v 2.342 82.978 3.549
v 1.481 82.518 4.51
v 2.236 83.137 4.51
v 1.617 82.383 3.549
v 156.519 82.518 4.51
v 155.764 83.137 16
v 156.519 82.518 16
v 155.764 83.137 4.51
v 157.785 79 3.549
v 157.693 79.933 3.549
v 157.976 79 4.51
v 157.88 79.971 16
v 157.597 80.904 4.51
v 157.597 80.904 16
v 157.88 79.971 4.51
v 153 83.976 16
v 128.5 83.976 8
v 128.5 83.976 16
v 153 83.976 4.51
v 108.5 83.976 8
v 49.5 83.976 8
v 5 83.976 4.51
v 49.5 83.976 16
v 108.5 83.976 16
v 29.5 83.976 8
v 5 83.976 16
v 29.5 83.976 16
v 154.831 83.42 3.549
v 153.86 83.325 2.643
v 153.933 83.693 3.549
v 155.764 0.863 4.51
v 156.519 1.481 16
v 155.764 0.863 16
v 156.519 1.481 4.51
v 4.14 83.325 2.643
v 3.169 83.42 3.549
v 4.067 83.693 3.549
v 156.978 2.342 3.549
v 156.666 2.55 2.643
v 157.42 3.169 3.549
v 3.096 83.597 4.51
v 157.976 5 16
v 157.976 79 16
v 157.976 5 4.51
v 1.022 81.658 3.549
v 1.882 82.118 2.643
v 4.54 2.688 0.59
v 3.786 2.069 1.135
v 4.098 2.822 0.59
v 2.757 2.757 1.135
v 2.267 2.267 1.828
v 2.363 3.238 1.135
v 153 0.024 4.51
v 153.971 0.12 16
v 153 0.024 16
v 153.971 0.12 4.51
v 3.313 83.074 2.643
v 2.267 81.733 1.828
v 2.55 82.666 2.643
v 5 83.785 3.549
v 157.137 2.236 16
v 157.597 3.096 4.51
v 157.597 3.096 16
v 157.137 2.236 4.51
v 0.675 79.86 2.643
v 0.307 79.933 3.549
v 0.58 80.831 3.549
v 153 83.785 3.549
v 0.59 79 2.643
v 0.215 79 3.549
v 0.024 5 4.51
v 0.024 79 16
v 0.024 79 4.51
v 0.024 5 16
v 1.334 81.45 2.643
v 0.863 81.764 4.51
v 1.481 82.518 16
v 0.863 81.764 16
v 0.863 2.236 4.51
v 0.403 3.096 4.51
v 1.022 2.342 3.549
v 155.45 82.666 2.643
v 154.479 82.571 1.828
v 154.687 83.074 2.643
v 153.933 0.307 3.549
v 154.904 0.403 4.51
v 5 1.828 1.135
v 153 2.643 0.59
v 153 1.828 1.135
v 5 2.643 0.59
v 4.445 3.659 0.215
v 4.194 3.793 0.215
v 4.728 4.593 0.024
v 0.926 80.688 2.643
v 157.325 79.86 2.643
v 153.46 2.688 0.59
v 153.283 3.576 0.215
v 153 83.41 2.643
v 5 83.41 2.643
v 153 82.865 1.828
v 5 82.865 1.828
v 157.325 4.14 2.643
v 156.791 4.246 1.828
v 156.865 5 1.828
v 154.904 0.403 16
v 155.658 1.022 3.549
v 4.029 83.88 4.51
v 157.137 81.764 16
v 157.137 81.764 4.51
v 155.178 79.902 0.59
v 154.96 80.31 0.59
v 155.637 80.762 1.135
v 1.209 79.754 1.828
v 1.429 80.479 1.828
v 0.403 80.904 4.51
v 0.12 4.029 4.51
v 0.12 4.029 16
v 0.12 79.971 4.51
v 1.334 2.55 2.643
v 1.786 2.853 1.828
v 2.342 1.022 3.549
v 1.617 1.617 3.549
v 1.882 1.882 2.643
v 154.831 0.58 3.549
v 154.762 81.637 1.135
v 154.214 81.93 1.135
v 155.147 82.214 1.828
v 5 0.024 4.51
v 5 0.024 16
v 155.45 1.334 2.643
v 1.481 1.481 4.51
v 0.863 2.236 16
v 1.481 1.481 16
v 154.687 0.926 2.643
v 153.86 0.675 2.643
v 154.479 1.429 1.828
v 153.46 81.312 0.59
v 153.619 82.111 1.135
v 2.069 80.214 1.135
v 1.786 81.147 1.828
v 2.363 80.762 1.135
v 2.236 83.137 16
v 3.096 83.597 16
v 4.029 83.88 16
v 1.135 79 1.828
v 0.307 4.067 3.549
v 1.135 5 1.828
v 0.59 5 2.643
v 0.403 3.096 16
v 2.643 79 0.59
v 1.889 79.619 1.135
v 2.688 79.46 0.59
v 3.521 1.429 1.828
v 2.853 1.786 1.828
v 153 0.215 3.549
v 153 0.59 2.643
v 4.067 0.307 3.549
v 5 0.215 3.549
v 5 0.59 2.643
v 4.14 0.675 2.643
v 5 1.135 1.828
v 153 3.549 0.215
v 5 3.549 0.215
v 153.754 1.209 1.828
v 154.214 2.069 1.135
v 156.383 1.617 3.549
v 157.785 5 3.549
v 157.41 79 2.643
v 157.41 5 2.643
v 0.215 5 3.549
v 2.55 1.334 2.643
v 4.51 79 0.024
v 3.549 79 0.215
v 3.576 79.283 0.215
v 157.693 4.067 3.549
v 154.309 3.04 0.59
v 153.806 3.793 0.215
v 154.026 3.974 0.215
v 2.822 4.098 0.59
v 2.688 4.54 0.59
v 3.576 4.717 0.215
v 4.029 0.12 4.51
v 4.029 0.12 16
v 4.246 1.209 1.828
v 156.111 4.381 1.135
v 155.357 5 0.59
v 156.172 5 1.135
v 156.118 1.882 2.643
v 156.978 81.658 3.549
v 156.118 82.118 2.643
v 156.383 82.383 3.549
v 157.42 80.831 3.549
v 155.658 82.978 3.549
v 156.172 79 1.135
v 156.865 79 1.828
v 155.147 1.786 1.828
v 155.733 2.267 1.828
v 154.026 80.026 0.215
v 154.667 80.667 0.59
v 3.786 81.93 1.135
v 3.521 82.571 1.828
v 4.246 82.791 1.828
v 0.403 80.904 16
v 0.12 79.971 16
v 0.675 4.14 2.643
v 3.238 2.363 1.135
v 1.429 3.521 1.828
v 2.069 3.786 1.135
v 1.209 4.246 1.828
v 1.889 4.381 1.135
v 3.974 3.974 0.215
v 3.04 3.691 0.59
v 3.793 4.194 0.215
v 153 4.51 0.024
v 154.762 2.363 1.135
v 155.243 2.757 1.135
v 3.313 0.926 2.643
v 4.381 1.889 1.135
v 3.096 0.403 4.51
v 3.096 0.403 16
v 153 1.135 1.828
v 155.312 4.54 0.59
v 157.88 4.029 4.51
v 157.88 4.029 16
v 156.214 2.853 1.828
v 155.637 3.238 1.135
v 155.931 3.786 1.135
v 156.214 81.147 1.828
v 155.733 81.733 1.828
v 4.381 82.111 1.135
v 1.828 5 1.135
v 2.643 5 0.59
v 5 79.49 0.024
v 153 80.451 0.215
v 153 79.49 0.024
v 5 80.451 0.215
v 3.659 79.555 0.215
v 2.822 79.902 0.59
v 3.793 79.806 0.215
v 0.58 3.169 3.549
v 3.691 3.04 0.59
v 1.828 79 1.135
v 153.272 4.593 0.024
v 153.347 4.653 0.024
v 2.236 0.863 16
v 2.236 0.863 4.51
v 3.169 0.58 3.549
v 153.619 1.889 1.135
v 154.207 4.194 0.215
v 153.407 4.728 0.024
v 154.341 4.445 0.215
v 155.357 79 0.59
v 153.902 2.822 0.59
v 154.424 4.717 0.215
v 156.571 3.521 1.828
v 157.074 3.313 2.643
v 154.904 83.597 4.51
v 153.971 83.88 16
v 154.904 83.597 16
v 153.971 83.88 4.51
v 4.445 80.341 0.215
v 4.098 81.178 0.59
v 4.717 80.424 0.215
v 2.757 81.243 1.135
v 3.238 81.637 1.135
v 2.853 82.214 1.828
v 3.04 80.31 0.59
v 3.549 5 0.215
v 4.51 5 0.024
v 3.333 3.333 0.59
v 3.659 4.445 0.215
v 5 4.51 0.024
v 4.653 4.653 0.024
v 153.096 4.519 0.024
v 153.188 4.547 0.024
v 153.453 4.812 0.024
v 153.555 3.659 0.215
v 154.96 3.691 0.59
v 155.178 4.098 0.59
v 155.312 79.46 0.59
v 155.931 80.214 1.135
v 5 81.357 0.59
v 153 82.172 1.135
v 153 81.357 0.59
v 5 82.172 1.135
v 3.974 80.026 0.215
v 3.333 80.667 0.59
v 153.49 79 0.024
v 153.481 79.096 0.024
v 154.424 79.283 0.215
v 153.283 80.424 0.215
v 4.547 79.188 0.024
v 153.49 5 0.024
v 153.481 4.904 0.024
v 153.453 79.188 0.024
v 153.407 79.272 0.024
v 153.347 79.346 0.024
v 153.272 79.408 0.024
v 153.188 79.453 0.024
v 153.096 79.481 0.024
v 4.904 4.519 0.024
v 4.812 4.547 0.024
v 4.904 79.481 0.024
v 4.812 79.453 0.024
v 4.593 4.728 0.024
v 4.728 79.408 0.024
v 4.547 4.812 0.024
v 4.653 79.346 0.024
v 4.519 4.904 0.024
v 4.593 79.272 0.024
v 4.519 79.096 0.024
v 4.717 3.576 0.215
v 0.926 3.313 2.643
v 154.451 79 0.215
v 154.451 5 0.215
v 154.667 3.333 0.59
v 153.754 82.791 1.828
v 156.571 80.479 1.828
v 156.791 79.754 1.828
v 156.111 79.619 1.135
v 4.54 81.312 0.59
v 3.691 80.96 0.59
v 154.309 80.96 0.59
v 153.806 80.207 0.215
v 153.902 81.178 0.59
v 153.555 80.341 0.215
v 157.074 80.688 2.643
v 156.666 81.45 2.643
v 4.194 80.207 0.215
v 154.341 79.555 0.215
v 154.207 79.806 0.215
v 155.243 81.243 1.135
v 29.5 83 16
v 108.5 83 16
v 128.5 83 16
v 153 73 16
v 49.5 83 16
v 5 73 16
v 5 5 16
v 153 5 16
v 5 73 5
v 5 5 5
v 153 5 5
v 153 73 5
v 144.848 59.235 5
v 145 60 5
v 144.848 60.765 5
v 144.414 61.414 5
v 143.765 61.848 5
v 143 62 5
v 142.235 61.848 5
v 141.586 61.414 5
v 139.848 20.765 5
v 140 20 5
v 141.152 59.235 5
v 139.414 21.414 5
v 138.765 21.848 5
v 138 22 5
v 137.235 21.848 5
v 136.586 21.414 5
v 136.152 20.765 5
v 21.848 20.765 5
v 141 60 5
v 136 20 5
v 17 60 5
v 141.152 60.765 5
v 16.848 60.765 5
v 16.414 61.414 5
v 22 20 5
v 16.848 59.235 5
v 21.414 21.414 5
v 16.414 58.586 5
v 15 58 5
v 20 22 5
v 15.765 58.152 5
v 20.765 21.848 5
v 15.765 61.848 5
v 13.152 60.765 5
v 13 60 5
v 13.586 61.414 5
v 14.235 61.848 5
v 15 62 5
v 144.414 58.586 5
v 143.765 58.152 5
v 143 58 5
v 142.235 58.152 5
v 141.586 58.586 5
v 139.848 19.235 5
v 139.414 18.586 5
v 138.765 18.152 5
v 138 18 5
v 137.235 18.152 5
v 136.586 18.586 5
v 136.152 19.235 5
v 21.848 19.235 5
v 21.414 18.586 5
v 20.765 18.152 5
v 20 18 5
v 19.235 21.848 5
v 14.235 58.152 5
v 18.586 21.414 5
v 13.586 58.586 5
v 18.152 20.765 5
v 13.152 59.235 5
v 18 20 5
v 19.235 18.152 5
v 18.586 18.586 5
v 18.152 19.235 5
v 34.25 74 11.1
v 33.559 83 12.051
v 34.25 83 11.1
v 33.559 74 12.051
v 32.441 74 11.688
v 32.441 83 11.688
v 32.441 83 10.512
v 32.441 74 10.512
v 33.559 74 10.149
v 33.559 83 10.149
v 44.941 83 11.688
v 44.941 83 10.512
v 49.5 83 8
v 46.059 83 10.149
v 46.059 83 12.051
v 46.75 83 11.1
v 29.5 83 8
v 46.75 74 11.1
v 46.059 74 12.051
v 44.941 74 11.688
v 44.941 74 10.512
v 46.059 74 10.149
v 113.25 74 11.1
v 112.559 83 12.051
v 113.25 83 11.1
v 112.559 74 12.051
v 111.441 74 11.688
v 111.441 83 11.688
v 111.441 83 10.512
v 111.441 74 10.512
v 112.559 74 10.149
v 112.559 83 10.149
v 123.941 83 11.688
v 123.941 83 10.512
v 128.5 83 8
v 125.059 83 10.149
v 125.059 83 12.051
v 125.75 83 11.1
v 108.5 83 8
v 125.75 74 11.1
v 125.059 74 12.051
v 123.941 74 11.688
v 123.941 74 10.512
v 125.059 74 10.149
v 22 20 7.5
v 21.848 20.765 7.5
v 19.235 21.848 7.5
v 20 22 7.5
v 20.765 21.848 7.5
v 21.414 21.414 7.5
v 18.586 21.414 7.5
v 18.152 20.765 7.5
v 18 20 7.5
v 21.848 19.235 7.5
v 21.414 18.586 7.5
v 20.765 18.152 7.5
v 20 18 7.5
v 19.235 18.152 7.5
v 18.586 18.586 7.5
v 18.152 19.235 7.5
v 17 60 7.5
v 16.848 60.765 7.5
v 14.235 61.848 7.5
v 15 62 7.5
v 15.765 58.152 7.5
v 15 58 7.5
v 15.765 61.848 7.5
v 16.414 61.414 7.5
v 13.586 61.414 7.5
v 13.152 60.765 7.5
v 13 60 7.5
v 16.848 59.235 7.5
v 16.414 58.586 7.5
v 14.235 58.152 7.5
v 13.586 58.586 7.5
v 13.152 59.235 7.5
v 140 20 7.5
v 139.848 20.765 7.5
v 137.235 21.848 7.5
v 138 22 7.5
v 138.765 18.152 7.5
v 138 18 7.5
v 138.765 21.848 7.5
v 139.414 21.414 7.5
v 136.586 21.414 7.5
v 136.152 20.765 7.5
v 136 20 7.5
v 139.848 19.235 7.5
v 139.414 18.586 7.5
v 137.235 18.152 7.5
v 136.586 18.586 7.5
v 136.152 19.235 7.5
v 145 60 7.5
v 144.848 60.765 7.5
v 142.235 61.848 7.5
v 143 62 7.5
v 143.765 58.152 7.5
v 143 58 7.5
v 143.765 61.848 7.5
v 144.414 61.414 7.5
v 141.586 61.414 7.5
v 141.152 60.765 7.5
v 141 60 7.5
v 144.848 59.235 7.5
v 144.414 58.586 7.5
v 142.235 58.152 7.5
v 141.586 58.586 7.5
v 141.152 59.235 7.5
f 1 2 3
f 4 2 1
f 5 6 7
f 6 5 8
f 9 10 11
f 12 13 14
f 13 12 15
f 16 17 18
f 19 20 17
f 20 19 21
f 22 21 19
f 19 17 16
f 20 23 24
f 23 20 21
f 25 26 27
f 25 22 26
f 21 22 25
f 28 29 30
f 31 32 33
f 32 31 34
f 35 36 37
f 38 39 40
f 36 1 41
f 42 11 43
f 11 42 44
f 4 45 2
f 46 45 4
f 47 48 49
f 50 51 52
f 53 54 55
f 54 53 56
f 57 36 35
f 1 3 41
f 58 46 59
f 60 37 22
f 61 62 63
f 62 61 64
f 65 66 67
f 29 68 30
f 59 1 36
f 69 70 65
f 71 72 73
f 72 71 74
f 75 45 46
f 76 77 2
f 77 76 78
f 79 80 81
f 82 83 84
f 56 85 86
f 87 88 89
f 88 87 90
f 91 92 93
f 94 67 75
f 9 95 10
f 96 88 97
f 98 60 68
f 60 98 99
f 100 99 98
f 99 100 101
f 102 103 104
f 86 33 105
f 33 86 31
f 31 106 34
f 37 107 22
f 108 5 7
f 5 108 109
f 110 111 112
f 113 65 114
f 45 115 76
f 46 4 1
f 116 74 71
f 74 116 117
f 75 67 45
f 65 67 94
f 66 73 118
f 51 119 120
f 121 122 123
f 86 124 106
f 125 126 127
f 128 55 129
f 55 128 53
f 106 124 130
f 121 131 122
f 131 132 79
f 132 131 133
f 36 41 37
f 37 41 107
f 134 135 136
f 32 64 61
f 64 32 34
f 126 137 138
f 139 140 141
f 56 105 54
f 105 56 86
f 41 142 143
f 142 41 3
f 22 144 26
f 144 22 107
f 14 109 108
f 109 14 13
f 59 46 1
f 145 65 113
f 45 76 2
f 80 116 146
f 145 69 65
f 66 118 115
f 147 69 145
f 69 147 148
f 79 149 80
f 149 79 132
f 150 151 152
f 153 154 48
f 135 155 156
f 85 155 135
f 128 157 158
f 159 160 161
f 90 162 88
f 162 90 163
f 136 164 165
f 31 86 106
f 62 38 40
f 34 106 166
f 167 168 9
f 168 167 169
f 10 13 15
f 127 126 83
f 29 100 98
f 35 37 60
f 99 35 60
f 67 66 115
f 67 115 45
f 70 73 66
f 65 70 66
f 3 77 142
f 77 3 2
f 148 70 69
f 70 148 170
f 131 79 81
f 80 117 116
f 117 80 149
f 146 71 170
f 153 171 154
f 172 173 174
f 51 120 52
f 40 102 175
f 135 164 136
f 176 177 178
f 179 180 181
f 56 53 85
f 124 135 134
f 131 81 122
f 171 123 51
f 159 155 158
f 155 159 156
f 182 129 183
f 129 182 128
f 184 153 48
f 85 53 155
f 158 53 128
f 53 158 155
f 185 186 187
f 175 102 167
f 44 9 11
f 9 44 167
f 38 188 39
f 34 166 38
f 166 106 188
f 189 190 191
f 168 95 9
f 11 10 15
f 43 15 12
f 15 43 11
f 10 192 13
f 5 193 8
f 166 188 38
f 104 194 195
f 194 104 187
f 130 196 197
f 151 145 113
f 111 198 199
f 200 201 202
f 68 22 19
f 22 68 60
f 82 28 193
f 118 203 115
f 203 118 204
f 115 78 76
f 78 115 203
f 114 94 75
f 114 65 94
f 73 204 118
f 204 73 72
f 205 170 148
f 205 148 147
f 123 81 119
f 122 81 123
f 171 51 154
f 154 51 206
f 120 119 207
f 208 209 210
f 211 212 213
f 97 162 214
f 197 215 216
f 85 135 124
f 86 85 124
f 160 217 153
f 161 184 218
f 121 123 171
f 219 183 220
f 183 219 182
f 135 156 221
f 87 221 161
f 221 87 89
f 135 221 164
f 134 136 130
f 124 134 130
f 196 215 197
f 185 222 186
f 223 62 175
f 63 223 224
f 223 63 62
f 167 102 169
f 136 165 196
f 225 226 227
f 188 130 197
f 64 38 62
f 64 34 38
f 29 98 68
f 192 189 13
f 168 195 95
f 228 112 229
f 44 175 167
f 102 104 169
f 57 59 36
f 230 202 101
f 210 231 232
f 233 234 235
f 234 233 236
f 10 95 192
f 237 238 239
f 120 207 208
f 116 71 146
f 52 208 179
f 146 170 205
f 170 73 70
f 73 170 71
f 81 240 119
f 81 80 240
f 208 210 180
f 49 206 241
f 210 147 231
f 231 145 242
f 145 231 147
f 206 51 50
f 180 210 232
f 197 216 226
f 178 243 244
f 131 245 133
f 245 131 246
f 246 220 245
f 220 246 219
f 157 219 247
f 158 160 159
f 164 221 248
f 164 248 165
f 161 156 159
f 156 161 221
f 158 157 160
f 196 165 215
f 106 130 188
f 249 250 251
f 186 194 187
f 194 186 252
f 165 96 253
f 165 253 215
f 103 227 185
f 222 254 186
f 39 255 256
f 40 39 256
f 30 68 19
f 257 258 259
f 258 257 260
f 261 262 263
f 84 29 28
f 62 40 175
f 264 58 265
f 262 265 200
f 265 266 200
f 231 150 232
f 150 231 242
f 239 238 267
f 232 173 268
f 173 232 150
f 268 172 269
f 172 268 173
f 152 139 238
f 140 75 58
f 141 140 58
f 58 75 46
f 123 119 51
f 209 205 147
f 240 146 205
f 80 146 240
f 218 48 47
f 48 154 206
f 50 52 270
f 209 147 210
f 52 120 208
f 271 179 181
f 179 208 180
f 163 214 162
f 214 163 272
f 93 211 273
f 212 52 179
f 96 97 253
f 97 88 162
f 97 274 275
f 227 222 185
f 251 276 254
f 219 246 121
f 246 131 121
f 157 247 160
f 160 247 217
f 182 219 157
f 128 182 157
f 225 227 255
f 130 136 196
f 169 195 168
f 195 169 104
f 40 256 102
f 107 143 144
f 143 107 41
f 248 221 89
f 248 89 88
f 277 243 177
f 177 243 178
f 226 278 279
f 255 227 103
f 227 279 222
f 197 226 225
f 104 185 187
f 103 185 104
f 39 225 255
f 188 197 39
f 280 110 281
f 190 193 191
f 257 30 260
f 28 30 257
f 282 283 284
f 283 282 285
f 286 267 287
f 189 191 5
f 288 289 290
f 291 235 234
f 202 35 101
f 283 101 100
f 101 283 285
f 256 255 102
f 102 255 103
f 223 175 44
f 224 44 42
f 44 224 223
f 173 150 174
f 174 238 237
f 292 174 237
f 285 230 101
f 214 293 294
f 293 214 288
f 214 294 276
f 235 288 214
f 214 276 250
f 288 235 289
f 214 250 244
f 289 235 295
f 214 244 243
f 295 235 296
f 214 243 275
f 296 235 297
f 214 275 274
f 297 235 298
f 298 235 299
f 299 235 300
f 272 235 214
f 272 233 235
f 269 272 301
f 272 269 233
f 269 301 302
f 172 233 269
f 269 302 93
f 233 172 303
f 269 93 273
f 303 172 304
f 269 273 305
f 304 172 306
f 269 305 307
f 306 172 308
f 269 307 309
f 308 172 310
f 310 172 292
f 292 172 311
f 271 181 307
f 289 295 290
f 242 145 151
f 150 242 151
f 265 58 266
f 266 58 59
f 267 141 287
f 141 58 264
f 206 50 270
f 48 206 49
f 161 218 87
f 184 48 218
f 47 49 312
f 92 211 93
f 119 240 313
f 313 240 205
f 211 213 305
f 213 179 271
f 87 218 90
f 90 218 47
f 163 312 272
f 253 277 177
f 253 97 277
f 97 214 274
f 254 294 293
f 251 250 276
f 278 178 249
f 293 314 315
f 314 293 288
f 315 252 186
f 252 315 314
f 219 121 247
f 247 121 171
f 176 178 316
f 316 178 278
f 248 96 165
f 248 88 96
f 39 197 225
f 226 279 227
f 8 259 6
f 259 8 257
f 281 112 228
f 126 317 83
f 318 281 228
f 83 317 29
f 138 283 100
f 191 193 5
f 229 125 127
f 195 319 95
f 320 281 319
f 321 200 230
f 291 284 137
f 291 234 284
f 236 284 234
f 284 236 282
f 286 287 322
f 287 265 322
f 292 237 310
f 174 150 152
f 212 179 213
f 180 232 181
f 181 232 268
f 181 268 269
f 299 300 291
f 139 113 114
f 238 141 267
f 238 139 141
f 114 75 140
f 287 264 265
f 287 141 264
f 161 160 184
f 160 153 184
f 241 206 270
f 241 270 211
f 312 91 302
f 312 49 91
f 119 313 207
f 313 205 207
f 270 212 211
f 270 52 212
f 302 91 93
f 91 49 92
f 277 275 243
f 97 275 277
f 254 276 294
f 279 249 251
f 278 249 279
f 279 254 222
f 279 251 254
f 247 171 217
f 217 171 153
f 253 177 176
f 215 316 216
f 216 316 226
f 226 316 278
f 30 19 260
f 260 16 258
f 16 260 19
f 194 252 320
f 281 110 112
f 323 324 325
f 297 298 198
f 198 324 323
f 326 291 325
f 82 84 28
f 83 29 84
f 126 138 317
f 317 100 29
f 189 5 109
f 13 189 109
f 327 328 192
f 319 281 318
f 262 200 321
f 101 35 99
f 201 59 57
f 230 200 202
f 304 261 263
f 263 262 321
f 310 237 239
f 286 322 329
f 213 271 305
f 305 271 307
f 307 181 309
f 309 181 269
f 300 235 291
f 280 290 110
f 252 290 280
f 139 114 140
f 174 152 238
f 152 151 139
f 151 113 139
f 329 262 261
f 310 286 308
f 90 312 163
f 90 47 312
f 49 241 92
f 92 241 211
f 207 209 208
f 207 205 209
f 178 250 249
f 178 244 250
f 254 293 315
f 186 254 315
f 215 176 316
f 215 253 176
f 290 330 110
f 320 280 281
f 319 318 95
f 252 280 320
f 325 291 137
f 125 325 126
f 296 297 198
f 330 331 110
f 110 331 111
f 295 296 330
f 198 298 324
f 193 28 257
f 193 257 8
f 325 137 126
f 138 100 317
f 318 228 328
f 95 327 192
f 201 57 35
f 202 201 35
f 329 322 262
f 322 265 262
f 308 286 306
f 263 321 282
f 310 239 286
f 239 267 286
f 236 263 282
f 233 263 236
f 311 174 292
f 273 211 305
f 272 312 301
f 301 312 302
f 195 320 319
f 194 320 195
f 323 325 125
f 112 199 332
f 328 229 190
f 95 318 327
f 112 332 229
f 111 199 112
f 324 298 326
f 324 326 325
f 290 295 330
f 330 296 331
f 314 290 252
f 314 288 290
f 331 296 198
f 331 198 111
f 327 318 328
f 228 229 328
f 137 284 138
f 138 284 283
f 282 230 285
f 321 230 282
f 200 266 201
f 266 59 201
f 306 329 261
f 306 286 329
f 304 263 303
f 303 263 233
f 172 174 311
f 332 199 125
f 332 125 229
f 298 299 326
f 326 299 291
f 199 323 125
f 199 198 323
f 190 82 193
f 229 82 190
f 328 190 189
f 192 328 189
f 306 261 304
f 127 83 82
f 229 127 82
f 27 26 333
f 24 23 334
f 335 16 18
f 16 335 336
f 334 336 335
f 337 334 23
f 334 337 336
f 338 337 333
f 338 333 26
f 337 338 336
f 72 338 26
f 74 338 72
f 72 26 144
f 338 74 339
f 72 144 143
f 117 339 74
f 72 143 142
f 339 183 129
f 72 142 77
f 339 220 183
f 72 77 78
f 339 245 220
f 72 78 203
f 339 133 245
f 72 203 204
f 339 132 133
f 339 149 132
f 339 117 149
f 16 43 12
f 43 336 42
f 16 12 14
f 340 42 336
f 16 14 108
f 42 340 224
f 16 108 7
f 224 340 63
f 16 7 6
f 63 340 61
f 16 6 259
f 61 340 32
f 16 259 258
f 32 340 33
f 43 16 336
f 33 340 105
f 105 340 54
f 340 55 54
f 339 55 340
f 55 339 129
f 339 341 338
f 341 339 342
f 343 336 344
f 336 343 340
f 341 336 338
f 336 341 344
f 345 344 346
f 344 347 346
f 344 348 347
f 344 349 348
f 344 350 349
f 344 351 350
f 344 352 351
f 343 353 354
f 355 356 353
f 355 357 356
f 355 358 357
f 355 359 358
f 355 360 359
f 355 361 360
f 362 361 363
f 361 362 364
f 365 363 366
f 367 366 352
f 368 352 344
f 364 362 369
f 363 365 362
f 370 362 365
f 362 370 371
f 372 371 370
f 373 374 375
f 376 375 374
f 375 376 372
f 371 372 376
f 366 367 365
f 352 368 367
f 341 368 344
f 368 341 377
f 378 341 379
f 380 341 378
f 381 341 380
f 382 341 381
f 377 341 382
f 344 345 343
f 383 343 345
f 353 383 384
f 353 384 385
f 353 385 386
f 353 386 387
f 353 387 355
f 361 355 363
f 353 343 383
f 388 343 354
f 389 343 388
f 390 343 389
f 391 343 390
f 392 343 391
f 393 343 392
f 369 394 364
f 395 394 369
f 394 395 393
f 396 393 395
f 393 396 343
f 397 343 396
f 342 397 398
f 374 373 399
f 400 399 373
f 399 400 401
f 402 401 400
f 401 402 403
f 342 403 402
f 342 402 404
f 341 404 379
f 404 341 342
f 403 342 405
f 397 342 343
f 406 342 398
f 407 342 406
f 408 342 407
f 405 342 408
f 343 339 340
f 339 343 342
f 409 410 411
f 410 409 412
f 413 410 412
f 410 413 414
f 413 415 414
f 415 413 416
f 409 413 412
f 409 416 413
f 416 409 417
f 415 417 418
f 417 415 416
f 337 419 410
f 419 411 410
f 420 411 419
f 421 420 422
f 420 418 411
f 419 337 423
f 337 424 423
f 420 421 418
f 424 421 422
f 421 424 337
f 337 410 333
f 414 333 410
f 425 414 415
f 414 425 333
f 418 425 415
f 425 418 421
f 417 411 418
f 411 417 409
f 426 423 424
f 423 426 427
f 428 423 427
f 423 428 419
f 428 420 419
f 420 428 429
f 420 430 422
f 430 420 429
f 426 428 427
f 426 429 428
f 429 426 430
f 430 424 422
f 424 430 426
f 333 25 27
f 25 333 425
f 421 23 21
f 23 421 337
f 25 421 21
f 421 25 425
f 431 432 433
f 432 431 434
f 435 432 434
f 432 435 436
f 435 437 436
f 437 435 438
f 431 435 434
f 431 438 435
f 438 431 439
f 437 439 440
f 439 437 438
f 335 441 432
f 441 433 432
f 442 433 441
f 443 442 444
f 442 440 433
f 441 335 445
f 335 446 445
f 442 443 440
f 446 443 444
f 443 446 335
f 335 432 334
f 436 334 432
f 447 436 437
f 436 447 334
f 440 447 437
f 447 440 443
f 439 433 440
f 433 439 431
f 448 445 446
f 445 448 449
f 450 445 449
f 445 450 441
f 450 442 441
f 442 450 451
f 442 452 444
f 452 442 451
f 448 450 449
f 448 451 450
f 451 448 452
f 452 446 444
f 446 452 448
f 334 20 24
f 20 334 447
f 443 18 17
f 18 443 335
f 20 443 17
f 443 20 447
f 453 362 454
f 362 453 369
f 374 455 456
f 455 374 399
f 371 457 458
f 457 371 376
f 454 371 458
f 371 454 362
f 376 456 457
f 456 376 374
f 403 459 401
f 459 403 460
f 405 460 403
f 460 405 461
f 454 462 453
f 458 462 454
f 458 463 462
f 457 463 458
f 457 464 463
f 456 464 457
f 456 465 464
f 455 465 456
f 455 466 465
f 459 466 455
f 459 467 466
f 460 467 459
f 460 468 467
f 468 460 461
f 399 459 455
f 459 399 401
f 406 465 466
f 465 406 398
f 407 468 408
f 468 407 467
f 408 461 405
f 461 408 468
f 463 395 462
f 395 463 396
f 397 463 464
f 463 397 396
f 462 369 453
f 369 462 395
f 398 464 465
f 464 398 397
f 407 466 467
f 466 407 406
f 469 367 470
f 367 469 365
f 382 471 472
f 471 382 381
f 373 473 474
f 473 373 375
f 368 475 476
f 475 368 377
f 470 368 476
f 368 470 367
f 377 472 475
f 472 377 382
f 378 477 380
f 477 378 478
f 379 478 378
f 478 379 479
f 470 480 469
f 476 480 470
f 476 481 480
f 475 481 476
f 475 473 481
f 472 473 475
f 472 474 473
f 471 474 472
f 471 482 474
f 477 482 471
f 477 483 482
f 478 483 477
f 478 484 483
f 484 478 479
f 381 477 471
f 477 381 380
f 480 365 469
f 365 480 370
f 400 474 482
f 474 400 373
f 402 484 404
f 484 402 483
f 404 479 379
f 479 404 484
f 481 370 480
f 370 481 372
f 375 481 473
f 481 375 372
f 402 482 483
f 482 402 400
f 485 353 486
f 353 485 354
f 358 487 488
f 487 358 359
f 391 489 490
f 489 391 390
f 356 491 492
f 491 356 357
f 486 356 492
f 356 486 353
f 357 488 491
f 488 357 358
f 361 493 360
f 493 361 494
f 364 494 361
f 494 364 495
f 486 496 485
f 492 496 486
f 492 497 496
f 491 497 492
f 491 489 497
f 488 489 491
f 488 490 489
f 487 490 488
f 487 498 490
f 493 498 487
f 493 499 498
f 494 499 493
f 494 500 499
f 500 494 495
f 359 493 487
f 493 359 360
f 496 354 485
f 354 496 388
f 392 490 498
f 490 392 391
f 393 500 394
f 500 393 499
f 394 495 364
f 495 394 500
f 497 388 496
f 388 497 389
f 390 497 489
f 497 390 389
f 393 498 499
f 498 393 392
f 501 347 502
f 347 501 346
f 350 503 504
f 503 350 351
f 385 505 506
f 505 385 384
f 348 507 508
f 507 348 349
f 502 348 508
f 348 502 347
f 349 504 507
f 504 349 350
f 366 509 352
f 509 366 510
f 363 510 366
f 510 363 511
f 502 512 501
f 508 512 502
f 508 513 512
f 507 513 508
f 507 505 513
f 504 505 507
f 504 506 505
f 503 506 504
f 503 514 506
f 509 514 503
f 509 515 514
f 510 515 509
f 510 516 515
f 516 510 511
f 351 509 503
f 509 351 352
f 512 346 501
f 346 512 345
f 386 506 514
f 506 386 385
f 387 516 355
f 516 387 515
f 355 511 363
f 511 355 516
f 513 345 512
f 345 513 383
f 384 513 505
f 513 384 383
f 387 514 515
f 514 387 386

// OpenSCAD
union() {
	union() {
		union() {
			union() {
				union() {
					difference() {
						difference() {
							difference() {
								difference() {
									translate(v = [5, 5, 5]) {
										minkowski() {
											cube(size = [148, 74, 11.0000000000]);
											sphere($fn = 32, r = 5);
										}
									}
									translate(v = [0, 0, 16.0000000000]) {
										cube(size = [158, 84, 5]);
									}
								}
								translate(v = [5, 5, 5]) {
									cube(size = [148, 68, 12.0000000000]);
								}
							}
							translate(v = [39.5000000000, 84, 16.0000000000]) {
								translate(v = [-10, -1, -8]) {
									cube(size = [20, 2, 9]);
									translate(v = [0, 0, 3.1000000000]) {
										translate(v = [3.7500000000, 0, 0]) {
											rotate(a = 90, v = [1, 0, 0]) {
												cylinder(h = 9, r = 1);
											}
										}
										translate(v = [16.2500000000, 0, 0]) {
											rotate(a = 90, v = [1, 0, 0]) {
												cylinder(h = 9, r = 1);
											}
										}
									}
								}
							}
						}
						translate(v = [118.5000000000, 84, 16.0000000000]) {
							translate(v = [-10, -1, -8]) {
								cube(size = [20, 2, 9]);
								translate(v = [0, 0, 3.1000000000]) {
									translate(v = [3.7500000000, 0, 0]) {
										rotate(a = 90, v = [1, 0, 0]) {
											cylinder(h = 9, r = 1);
										}
									}
									translate(v = [16.2500000000, 0, 0]) {
										rotate(a = 90, v = [1, 0, 0]) {
											cylinder(h = 9, r = 1);
										}
									}
								}
							}
						}
					}
					translate(v = [20, 20, 5]) {
						cylinder($fn = 16, h = 2.5000000000, r = 2);
					}
				}
				translate(v = [15, 60, 5]) {
					cylinder($fn = 16, h = 2.5000000000, r = 2);
				}
			}
			translate(v = [138, 20, 5]) {
				cylinder($fn = 16, h = 2.5000000000, r = 2);
			}
		}
		translate(v = [143, 60, 5]) {
			cylinder($fn = 16, h = 2.5000000000, r = 2);
		}
	}
}
